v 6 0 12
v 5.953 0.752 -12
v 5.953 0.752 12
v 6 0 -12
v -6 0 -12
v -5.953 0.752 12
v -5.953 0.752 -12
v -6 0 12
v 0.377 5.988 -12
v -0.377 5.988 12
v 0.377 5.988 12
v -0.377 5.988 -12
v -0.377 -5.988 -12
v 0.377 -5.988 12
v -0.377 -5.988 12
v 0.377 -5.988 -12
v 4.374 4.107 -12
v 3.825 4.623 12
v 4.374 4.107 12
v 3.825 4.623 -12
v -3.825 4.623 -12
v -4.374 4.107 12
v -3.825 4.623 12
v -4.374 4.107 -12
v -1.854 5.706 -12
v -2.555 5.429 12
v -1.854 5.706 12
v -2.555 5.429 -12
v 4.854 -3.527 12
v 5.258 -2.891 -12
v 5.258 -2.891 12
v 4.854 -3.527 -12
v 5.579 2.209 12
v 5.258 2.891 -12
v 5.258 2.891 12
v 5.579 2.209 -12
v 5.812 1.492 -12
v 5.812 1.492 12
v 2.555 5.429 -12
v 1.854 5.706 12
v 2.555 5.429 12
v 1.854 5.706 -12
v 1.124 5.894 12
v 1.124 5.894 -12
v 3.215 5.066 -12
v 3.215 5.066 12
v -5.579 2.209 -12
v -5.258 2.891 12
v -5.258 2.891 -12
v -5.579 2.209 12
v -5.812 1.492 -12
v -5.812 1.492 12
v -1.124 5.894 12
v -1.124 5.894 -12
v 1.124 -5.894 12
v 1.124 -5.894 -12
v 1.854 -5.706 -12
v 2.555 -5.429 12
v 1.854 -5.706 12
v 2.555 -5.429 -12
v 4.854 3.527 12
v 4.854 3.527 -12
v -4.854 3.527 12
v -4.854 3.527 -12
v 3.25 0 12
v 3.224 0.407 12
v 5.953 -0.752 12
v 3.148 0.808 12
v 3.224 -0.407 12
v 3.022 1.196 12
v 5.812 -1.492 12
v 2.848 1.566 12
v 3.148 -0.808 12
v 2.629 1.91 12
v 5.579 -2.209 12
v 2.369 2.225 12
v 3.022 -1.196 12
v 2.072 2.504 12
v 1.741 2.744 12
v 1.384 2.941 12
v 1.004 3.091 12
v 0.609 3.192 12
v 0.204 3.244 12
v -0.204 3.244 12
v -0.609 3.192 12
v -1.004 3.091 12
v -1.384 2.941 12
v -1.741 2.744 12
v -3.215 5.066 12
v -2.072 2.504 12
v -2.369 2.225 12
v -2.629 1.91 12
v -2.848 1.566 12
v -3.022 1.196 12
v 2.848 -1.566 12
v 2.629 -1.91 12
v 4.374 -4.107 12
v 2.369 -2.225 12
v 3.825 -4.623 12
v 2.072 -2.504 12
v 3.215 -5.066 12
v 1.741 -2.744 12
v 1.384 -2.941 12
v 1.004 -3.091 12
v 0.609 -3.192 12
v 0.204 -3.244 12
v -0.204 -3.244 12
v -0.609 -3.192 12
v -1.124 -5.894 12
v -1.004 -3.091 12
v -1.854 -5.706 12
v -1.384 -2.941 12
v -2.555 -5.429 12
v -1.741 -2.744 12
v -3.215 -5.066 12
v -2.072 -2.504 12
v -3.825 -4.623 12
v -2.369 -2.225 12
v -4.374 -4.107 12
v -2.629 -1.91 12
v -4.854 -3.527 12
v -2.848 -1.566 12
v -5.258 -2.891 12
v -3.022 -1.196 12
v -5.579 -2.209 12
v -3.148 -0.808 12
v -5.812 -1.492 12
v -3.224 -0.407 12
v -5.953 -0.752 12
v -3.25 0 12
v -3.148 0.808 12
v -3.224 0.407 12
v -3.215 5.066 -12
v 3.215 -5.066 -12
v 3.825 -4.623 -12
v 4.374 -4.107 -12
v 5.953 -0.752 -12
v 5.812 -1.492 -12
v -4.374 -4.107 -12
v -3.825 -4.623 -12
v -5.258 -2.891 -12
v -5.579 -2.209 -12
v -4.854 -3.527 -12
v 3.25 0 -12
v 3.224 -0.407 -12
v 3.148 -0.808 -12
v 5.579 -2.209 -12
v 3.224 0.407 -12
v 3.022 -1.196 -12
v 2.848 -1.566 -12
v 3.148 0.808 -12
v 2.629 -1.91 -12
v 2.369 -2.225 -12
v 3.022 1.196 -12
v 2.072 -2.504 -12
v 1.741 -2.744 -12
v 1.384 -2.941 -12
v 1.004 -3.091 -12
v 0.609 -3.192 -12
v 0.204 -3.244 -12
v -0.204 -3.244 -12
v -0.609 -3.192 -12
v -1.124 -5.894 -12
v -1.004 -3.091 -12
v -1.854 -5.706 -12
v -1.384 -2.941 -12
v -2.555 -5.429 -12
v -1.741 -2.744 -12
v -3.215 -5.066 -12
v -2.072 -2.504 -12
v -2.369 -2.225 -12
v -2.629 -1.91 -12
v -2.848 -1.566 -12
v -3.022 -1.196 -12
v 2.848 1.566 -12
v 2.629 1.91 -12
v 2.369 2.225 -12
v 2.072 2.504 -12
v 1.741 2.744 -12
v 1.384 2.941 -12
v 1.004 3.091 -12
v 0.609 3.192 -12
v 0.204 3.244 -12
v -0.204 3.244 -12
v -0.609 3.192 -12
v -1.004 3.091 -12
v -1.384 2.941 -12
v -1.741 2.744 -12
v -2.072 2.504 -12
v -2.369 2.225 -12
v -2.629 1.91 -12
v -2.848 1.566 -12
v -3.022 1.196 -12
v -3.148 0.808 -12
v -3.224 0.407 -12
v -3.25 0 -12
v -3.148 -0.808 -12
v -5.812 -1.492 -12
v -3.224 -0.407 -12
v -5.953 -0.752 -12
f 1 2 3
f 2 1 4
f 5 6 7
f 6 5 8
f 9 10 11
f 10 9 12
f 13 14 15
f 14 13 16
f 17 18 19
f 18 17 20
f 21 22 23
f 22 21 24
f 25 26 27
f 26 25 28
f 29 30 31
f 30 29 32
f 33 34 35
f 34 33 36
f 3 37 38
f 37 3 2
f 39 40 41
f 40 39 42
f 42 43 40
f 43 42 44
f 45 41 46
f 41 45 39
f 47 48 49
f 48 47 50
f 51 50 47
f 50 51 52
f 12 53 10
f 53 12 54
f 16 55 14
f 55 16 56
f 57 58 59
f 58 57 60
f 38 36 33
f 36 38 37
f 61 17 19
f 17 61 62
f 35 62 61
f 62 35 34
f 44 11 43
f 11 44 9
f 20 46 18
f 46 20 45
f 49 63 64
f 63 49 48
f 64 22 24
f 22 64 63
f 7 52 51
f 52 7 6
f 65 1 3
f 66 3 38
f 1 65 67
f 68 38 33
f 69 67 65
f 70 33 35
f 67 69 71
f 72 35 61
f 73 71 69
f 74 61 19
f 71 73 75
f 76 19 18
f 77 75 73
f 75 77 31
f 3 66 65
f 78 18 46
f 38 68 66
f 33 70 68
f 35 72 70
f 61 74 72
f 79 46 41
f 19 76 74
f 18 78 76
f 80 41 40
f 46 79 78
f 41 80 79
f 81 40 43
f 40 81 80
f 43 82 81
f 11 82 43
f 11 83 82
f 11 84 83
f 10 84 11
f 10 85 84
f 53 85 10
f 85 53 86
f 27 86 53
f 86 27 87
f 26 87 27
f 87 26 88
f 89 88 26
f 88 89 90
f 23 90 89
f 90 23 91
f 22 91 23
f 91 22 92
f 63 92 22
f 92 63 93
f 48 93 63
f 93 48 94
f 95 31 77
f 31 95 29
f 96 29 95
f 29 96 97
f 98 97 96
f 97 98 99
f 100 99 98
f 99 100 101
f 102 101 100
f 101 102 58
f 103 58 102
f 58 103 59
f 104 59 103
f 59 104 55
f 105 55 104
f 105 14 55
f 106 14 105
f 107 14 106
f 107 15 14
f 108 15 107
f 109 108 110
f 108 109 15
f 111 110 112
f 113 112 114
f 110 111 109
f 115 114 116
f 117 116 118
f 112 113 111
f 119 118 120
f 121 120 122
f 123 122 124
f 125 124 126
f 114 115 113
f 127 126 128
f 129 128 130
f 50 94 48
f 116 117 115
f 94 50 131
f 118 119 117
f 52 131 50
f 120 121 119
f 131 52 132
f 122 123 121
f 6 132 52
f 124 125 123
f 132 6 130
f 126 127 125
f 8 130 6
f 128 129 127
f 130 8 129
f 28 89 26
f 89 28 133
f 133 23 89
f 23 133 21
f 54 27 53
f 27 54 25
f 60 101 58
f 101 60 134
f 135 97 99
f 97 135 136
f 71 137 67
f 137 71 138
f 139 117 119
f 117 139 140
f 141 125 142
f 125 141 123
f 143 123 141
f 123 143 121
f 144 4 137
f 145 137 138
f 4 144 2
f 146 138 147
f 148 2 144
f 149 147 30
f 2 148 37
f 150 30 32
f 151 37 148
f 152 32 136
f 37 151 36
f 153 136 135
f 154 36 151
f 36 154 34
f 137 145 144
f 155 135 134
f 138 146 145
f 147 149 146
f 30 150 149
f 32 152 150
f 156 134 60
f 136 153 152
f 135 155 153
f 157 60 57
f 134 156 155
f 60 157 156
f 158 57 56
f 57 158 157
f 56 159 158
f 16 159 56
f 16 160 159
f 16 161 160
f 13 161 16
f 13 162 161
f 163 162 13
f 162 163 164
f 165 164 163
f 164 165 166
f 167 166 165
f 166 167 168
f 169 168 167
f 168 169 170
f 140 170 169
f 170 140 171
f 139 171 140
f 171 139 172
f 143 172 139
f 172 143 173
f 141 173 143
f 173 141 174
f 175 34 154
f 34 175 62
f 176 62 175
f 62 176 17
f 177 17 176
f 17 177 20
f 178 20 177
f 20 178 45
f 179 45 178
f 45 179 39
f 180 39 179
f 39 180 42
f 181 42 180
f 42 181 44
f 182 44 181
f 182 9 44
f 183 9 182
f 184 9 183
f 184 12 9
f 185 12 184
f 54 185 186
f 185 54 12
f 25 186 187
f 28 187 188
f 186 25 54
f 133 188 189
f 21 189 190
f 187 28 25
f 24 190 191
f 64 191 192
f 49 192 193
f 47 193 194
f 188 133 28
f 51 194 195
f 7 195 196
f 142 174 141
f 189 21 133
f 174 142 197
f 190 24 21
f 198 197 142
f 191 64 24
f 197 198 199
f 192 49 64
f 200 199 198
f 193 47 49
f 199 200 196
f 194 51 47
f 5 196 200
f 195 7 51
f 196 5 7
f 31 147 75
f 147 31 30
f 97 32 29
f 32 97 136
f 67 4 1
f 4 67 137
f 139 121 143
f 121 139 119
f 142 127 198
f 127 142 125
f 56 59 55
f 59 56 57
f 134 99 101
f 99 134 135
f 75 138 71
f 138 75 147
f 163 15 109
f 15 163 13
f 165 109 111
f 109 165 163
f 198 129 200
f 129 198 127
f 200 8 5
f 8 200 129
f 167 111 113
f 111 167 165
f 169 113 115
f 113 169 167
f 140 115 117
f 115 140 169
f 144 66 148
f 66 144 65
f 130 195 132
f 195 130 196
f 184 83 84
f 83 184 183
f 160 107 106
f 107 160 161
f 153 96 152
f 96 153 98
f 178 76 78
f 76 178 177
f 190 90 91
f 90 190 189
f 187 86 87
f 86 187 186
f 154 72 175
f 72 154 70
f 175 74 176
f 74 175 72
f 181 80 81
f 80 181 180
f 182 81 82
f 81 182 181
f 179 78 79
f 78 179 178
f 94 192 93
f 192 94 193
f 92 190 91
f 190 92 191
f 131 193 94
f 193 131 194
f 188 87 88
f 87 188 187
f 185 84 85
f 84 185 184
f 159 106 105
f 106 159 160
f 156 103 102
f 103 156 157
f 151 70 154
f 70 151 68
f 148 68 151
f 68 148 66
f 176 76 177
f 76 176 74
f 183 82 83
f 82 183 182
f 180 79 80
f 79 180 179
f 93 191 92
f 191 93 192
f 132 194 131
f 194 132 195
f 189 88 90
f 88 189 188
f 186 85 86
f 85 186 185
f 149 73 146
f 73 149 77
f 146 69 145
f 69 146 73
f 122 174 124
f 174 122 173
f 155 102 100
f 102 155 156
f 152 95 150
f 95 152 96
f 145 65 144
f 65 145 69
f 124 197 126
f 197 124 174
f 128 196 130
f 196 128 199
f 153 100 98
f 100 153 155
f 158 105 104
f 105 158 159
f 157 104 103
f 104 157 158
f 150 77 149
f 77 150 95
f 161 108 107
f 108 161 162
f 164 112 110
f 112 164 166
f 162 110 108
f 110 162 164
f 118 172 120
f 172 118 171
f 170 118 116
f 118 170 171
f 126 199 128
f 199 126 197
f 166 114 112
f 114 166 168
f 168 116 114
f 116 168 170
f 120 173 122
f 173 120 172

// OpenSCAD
$fn = 50;


difference() {
	union() {
		translate(v = [0, 0, -12.0000000000]) {
			cylinder(h = 24, r = 6.0000000000);
		}
	}
	union() {
		translate(v = [0, 0, -100.0000000000]) {
			cylinder(h = 200, r = 3.2500000000);
		}
	}
}
